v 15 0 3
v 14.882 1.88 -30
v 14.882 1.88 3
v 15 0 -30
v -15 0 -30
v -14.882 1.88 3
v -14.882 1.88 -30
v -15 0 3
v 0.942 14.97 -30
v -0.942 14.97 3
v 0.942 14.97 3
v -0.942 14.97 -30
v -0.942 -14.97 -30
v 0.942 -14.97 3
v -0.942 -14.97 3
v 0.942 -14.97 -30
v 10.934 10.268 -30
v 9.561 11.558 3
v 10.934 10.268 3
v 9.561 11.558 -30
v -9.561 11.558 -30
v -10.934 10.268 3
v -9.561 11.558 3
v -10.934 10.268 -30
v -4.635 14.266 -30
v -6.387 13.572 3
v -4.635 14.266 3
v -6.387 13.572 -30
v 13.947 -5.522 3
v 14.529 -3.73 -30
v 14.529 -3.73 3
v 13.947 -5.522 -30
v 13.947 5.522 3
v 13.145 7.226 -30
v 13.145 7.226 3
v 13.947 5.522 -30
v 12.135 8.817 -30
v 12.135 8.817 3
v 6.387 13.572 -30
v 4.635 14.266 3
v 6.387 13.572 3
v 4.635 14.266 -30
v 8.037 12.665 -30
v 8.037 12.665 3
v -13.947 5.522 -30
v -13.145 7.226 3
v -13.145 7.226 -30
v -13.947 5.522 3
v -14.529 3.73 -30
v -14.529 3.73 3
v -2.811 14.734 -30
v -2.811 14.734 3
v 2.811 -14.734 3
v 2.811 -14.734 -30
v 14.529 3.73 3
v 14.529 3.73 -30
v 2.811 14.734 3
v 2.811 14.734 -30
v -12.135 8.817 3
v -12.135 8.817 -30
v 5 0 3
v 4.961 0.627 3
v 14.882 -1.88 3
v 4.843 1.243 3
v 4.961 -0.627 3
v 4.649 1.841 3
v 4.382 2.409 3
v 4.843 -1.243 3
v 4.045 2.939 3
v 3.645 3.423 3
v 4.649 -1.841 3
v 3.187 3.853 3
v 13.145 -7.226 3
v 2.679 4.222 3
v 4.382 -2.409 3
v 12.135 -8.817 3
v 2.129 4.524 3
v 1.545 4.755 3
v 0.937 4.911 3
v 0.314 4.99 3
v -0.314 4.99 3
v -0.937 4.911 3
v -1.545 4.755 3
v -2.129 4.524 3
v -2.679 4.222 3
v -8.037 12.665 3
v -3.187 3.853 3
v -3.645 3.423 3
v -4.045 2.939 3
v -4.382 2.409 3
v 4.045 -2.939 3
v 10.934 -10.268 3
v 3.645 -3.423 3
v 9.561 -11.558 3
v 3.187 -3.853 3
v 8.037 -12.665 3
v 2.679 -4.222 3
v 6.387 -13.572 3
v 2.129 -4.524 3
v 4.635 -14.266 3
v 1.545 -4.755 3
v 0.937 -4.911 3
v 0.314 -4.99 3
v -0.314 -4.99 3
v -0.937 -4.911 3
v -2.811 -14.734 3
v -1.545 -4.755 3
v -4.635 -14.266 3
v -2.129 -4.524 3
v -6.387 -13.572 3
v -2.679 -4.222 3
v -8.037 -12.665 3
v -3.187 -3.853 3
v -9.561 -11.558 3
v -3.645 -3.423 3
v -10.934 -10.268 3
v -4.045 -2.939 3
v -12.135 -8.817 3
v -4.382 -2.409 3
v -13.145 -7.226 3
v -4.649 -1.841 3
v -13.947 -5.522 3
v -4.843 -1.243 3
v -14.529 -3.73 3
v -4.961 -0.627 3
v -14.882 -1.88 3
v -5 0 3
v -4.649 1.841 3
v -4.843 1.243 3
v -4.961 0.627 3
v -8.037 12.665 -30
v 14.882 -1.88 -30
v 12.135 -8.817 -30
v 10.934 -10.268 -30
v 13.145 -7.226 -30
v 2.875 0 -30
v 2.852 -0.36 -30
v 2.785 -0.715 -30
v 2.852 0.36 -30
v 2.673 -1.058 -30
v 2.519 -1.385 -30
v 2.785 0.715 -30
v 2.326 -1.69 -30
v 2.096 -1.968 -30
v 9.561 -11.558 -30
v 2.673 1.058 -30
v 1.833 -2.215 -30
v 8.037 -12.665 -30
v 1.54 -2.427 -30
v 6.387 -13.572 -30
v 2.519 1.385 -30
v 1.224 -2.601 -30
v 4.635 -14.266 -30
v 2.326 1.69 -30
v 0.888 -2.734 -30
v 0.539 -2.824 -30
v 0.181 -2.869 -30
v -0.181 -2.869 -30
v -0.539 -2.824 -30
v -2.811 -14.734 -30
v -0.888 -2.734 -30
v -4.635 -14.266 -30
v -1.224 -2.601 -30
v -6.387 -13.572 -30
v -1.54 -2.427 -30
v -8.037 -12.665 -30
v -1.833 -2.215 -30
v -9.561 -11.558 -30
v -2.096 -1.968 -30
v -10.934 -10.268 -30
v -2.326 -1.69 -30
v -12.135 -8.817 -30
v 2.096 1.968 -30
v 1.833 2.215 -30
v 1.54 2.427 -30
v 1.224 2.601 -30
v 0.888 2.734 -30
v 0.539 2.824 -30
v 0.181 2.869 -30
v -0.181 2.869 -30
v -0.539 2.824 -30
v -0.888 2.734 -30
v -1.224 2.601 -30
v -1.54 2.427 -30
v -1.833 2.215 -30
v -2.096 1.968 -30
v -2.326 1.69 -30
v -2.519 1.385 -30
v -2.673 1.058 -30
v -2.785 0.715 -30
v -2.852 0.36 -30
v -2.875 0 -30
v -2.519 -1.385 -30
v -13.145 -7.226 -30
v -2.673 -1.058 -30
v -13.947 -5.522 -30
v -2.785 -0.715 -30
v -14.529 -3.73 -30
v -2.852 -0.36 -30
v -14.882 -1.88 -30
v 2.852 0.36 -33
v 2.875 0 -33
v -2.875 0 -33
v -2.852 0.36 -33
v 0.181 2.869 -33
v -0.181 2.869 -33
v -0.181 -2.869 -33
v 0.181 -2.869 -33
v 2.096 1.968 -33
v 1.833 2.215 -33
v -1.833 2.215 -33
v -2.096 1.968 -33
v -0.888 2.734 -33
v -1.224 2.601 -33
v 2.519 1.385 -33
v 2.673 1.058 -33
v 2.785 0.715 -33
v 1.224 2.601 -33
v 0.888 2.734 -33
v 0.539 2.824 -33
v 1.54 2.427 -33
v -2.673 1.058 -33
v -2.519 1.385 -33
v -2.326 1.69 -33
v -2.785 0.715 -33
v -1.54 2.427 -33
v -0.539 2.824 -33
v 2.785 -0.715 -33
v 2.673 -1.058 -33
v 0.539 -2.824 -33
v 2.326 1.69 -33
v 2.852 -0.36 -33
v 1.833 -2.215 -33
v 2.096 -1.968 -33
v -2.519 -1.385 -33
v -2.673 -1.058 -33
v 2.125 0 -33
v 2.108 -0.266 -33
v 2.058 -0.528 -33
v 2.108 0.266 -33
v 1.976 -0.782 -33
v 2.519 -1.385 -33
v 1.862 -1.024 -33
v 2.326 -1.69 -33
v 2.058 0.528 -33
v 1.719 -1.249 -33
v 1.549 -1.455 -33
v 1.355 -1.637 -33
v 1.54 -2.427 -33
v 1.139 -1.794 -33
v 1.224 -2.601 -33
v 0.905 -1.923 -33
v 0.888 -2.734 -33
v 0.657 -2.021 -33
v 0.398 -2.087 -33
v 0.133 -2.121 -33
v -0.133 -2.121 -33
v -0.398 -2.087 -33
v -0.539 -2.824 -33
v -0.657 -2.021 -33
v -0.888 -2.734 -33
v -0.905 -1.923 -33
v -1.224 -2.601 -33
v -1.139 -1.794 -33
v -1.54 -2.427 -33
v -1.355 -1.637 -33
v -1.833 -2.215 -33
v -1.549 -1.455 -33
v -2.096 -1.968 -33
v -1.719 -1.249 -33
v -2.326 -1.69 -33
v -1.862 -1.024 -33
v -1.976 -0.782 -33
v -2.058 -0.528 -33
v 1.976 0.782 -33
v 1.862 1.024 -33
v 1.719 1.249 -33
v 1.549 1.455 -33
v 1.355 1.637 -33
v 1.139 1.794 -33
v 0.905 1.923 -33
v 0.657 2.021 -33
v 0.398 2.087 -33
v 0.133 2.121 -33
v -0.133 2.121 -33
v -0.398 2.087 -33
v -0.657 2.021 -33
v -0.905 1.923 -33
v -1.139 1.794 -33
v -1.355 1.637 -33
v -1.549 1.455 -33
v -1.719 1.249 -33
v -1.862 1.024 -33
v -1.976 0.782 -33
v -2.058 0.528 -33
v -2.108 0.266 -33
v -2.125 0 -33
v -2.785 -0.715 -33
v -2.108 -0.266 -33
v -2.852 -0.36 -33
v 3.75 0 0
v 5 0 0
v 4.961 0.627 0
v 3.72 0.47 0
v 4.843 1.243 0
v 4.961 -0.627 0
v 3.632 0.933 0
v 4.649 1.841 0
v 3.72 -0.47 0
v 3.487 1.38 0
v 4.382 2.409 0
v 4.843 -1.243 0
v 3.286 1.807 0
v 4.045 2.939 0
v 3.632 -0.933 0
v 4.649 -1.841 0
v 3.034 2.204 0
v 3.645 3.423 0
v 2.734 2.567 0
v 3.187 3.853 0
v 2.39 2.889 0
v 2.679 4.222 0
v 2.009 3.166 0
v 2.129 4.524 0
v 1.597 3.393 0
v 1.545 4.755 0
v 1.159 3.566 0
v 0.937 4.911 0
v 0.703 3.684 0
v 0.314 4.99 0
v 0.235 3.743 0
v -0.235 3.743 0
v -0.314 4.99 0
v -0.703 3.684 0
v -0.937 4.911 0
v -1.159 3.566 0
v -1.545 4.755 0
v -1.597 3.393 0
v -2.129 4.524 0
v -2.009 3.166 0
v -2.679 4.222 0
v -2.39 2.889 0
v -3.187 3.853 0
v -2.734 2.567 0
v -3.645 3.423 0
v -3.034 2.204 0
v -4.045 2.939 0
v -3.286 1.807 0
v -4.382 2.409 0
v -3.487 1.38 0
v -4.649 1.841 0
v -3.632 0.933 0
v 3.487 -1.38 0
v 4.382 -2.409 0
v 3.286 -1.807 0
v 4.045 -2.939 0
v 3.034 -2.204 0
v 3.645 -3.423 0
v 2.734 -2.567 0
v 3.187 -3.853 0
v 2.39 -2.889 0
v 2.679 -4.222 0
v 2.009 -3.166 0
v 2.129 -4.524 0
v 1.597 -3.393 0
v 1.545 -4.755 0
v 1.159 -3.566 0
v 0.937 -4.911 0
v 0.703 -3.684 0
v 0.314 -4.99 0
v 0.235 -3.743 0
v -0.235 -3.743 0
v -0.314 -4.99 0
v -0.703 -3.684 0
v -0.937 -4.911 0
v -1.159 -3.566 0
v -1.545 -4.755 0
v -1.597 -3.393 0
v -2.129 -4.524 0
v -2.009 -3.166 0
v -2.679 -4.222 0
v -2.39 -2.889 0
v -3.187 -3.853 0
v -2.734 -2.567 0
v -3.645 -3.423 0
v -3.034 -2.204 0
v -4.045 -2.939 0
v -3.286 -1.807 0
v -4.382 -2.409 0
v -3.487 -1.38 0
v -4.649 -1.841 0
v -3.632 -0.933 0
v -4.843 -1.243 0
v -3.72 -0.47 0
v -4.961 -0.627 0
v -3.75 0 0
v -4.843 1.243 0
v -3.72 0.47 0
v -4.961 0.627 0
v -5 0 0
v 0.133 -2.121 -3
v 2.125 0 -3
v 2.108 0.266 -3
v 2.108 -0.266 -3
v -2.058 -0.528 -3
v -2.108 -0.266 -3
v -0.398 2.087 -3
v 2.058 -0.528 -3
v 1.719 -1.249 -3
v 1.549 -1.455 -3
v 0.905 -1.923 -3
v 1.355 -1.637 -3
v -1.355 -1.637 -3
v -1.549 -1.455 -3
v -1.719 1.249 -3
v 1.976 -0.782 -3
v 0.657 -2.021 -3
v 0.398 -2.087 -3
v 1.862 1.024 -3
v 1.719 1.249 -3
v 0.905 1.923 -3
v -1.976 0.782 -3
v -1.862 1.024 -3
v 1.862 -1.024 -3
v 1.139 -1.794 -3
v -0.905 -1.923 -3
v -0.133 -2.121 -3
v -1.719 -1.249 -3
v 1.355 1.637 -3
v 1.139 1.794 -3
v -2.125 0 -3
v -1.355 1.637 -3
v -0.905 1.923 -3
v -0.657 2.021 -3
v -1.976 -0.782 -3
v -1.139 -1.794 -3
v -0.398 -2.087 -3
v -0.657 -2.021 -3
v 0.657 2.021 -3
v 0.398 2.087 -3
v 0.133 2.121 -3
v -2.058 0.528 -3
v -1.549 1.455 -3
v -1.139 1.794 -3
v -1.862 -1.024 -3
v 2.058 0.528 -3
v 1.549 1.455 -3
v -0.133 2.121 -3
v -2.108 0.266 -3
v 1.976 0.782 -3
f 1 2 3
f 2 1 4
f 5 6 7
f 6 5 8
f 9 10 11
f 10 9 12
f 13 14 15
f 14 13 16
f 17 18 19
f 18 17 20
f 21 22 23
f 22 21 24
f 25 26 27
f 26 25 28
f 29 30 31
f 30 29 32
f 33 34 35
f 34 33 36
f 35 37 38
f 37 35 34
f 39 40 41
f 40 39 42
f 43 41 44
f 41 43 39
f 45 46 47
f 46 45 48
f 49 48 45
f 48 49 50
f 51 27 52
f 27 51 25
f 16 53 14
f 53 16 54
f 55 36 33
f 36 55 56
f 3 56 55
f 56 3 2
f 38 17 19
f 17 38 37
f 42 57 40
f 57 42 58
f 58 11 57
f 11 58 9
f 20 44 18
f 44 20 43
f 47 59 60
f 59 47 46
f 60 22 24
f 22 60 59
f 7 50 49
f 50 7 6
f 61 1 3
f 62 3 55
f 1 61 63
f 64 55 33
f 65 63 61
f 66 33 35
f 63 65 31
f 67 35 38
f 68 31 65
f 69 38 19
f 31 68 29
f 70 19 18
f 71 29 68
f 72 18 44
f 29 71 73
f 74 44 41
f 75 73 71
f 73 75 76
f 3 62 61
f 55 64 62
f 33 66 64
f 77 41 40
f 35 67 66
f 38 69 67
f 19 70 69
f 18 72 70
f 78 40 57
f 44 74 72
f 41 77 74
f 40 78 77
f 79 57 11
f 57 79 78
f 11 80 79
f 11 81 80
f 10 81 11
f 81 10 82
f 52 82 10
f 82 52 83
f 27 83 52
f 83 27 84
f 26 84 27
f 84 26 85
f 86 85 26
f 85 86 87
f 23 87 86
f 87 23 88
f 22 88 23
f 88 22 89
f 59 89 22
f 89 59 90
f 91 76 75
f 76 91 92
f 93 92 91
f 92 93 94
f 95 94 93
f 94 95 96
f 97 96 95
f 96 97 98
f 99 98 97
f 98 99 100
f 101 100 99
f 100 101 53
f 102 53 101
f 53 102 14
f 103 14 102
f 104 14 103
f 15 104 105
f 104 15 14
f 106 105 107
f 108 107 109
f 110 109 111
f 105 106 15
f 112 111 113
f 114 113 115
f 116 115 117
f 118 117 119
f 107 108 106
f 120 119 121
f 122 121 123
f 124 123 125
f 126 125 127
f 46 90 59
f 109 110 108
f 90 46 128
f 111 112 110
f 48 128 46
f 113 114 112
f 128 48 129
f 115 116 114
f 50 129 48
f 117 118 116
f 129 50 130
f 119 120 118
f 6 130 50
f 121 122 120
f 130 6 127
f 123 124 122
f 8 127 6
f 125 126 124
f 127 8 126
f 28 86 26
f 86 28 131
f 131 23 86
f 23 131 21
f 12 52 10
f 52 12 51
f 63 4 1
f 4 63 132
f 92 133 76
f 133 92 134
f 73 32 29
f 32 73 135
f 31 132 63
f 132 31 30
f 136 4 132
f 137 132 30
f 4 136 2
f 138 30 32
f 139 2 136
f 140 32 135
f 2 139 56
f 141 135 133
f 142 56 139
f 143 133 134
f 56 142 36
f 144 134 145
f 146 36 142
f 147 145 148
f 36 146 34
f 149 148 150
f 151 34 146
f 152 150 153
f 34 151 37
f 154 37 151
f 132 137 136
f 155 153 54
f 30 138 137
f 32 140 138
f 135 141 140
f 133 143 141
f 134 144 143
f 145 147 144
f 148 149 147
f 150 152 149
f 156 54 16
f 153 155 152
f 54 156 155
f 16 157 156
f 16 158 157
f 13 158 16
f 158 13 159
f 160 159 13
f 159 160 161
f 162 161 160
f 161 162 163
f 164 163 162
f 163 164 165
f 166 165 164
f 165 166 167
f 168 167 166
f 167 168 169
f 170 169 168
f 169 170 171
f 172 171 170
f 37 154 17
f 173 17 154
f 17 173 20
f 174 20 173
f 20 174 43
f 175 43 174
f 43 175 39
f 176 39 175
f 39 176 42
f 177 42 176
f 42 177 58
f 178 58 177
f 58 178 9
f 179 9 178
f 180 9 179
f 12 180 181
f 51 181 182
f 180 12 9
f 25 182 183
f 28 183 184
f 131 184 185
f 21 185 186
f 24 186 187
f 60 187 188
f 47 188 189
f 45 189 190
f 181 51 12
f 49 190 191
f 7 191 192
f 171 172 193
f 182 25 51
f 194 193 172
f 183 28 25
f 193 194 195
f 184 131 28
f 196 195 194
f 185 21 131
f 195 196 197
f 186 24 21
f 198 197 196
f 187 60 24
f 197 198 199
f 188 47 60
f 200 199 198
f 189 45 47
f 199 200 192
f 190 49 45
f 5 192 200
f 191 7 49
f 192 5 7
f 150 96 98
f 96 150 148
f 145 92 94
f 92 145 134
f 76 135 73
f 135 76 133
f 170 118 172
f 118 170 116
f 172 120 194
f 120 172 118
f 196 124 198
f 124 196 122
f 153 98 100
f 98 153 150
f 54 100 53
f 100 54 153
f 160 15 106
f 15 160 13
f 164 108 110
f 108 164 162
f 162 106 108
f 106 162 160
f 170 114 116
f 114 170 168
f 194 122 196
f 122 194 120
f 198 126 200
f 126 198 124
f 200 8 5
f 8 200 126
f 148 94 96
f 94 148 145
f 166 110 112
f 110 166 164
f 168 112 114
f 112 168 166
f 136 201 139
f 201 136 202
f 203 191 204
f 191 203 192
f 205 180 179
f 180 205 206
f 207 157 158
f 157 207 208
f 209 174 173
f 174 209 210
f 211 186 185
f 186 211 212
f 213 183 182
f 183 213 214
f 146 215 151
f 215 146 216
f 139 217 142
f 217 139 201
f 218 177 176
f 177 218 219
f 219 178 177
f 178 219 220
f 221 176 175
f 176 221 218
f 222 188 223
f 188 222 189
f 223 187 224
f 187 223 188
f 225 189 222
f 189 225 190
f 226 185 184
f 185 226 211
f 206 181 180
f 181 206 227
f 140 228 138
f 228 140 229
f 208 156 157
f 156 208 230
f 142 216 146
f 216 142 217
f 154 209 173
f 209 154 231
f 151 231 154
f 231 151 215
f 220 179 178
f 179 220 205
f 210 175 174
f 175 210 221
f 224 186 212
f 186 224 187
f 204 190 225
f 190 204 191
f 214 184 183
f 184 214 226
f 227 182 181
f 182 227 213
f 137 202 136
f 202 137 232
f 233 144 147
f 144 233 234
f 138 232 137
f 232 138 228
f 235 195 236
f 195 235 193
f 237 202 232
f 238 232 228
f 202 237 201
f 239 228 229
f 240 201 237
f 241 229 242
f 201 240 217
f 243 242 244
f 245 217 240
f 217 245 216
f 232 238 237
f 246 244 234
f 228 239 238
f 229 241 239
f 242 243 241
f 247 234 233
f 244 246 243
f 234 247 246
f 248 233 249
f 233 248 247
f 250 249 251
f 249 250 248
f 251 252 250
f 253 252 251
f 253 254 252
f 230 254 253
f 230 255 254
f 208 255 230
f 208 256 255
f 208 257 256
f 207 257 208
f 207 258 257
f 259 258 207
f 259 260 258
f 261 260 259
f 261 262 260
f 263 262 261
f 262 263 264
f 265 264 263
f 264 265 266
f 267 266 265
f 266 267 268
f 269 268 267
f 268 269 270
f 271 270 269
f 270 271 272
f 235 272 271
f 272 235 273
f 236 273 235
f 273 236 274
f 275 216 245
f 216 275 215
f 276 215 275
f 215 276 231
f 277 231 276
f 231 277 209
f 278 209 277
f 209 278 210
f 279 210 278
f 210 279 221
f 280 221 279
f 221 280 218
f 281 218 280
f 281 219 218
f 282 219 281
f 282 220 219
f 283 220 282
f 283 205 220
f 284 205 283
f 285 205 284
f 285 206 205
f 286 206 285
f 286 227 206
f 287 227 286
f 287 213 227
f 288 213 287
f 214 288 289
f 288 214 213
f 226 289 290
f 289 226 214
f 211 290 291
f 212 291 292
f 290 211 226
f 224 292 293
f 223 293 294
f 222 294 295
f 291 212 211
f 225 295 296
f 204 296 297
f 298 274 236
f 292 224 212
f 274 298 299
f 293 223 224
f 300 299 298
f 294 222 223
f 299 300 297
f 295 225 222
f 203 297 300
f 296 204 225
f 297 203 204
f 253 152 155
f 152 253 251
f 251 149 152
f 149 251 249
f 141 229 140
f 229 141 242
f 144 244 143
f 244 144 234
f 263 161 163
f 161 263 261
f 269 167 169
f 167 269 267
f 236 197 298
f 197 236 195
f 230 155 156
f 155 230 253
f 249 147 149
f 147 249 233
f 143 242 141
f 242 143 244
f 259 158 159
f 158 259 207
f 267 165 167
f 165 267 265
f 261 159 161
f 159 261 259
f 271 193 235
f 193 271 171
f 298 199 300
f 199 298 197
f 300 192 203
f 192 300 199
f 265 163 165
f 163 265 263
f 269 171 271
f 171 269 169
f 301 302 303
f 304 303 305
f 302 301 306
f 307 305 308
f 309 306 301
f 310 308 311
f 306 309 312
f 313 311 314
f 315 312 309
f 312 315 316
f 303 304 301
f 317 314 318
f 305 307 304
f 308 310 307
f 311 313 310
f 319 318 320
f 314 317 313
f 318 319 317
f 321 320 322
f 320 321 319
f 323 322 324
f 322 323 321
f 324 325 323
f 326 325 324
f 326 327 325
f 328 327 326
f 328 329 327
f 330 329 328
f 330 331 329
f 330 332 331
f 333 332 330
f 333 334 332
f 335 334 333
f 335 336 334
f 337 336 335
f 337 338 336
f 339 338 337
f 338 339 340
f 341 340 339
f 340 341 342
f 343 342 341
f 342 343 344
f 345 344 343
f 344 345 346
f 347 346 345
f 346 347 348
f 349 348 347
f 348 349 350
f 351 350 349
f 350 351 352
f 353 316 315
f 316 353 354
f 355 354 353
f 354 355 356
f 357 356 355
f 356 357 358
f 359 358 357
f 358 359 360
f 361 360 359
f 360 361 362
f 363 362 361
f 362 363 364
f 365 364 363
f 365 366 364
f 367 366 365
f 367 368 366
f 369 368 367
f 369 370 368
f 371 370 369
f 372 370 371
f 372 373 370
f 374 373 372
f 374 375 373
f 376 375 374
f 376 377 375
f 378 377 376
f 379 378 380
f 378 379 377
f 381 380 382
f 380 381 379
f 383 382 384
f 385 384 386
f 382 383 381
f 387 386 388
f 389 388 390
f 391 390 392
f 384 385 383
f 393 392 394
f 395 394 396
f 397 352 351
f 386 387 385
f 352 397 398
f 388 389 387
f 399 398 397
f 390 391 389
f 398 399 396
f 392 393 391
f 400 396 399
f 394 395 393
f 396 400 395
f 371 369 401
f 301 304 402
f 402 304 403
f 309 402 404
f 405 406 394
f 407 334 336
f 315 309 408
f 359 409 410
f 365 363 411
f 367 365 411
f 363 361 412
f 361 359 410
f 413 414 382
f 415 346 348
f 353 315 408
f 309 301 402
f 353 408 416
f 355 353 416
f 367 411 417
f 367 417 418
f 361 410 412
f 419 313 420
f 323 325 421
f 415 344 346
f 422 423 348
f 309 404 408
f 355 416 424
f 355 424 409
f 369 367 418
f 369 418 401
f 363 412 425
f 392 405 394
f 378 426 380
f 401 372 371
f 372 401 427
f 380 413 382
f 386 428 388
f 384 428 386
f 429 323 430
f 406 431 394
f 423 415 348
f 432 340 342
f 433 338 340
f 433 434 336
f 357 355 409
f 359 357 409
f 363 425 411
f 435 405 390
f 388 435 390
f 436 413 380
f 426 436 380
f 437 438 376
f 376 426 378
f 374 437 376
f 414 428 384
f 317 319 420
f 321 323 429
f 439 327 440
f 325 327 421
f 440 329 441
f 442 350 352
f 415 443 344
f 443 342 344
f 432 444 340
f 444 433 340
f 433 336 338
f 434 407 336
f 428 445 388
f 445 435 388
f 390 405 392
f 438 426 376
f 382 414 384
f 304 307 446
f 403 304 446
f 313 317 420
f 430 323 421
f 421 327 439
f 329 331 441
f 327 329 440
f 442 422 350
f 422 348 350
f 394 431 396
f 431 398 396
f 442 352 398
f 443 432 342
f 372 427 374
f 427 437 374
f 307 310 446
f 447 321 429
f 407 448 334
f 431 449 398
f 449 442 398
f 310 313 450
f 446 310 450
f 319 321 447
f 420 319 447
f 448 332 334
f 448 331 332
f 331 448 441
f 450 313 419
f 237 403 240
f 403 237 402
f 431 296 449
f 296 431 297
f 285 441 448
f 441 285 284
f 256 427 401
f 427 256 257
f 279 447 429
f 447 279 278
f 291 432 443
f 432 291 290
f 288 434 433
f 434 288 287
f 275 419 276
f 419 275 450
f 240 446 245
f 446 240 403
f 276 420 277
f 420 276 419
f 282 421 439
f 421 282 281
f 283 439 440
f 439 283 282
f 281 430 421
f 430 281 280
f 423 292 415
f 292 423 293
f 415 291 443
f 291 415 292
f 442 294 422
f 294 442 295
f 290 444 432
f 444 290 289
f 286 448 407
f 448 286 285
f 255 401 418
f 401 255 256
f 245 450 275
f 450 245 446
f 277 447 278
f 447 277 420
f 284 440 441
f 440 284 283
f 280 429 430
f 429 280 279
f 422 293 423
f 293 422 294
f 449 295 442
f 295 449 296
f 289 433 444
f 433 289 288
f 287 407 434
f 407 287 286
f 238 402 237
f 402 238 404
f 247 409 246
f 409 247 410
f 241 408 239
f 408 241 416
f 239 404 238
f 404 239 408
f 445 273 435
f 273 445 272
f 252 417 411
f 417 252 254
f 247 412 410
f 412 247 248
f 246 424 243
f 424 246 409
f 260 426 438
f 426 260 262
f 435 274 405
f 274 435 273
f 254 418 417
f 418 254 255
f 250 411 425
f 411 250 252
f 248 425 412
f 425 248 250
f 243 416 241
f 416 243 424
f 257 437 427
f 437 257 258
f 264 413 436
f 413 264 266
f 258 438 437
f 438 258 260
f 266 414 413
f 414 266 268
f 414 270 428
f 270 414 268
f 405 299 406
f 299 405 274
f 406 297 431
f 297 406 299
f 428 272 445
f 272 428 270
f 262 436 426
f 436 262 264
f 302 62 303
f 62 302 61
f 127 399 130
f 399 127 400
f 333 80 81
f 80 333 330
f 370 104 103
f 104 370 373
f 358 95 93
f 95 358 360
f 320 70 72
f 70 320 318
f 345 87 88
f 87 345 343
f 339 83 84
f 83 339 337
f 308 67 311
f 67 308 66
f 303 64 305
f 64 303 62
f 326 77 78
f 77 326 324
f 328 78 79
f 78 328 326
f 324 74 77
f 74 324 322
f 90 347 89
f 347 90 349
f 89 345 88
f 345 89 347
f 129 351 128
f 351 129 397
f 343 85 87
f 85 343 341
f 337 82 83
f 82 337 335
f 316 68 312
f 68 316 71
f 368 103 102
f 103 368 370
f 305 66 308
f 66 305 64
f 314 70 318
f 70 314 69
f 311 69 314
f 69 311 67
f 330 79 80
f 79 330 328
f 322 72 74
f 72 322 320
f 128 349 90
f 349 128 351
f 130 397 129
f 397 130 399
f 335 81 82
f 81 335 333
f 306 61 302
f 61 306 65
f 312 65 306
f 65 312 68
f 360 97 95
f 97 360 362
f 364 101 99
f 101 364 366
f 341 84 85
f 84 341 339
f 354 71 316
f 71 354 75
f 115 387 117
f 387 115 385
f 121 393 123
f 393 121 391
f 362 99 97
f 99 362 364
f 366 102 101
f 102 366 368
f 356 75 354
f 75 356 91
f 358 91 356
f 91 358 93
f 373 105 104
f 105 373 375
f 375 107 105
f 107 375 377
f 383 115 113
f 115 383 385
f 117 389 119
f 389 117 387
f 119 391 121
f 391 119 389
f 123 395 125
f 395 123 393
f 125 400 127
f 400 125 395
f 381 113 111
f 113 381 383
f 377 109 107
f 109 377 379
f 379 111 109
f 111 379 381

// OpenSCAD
$fn = 50;

difference() {
	union() {
		translate(v = [0, 0, -30.0]) {
			cylinder(h = 33, r = 15.0);
		}
		#translate(v = [0, 0, -33.0]) {
			cylinder(h = 33, r = 2.875);
		}
	}
	union() {
		translate(v = [0, 0, 0]) {
			rotate(a = [0, 0, 0]) {
				difference() {
					union() {
						translate(v = [0, 0, -33.0]) {
							cylinder(h = 33, r = 2.0);
						}
						translate(v = [0, 0, -3]) {
							cylinder(h = 3, r1 = 2.125, r2 = 3.75);
						}
						translate(v = [0, 0, -33.0]) {
							cylinder(h = 33, r = 2.125);
						}
						translate(v = [0, 0, -33.0]) {
							cylinder(h = 33, r = 2.0);
						}
					}
					union();
				}
			}
		}
		#cylinder(h = 3, r = 5.0);
	}
}
